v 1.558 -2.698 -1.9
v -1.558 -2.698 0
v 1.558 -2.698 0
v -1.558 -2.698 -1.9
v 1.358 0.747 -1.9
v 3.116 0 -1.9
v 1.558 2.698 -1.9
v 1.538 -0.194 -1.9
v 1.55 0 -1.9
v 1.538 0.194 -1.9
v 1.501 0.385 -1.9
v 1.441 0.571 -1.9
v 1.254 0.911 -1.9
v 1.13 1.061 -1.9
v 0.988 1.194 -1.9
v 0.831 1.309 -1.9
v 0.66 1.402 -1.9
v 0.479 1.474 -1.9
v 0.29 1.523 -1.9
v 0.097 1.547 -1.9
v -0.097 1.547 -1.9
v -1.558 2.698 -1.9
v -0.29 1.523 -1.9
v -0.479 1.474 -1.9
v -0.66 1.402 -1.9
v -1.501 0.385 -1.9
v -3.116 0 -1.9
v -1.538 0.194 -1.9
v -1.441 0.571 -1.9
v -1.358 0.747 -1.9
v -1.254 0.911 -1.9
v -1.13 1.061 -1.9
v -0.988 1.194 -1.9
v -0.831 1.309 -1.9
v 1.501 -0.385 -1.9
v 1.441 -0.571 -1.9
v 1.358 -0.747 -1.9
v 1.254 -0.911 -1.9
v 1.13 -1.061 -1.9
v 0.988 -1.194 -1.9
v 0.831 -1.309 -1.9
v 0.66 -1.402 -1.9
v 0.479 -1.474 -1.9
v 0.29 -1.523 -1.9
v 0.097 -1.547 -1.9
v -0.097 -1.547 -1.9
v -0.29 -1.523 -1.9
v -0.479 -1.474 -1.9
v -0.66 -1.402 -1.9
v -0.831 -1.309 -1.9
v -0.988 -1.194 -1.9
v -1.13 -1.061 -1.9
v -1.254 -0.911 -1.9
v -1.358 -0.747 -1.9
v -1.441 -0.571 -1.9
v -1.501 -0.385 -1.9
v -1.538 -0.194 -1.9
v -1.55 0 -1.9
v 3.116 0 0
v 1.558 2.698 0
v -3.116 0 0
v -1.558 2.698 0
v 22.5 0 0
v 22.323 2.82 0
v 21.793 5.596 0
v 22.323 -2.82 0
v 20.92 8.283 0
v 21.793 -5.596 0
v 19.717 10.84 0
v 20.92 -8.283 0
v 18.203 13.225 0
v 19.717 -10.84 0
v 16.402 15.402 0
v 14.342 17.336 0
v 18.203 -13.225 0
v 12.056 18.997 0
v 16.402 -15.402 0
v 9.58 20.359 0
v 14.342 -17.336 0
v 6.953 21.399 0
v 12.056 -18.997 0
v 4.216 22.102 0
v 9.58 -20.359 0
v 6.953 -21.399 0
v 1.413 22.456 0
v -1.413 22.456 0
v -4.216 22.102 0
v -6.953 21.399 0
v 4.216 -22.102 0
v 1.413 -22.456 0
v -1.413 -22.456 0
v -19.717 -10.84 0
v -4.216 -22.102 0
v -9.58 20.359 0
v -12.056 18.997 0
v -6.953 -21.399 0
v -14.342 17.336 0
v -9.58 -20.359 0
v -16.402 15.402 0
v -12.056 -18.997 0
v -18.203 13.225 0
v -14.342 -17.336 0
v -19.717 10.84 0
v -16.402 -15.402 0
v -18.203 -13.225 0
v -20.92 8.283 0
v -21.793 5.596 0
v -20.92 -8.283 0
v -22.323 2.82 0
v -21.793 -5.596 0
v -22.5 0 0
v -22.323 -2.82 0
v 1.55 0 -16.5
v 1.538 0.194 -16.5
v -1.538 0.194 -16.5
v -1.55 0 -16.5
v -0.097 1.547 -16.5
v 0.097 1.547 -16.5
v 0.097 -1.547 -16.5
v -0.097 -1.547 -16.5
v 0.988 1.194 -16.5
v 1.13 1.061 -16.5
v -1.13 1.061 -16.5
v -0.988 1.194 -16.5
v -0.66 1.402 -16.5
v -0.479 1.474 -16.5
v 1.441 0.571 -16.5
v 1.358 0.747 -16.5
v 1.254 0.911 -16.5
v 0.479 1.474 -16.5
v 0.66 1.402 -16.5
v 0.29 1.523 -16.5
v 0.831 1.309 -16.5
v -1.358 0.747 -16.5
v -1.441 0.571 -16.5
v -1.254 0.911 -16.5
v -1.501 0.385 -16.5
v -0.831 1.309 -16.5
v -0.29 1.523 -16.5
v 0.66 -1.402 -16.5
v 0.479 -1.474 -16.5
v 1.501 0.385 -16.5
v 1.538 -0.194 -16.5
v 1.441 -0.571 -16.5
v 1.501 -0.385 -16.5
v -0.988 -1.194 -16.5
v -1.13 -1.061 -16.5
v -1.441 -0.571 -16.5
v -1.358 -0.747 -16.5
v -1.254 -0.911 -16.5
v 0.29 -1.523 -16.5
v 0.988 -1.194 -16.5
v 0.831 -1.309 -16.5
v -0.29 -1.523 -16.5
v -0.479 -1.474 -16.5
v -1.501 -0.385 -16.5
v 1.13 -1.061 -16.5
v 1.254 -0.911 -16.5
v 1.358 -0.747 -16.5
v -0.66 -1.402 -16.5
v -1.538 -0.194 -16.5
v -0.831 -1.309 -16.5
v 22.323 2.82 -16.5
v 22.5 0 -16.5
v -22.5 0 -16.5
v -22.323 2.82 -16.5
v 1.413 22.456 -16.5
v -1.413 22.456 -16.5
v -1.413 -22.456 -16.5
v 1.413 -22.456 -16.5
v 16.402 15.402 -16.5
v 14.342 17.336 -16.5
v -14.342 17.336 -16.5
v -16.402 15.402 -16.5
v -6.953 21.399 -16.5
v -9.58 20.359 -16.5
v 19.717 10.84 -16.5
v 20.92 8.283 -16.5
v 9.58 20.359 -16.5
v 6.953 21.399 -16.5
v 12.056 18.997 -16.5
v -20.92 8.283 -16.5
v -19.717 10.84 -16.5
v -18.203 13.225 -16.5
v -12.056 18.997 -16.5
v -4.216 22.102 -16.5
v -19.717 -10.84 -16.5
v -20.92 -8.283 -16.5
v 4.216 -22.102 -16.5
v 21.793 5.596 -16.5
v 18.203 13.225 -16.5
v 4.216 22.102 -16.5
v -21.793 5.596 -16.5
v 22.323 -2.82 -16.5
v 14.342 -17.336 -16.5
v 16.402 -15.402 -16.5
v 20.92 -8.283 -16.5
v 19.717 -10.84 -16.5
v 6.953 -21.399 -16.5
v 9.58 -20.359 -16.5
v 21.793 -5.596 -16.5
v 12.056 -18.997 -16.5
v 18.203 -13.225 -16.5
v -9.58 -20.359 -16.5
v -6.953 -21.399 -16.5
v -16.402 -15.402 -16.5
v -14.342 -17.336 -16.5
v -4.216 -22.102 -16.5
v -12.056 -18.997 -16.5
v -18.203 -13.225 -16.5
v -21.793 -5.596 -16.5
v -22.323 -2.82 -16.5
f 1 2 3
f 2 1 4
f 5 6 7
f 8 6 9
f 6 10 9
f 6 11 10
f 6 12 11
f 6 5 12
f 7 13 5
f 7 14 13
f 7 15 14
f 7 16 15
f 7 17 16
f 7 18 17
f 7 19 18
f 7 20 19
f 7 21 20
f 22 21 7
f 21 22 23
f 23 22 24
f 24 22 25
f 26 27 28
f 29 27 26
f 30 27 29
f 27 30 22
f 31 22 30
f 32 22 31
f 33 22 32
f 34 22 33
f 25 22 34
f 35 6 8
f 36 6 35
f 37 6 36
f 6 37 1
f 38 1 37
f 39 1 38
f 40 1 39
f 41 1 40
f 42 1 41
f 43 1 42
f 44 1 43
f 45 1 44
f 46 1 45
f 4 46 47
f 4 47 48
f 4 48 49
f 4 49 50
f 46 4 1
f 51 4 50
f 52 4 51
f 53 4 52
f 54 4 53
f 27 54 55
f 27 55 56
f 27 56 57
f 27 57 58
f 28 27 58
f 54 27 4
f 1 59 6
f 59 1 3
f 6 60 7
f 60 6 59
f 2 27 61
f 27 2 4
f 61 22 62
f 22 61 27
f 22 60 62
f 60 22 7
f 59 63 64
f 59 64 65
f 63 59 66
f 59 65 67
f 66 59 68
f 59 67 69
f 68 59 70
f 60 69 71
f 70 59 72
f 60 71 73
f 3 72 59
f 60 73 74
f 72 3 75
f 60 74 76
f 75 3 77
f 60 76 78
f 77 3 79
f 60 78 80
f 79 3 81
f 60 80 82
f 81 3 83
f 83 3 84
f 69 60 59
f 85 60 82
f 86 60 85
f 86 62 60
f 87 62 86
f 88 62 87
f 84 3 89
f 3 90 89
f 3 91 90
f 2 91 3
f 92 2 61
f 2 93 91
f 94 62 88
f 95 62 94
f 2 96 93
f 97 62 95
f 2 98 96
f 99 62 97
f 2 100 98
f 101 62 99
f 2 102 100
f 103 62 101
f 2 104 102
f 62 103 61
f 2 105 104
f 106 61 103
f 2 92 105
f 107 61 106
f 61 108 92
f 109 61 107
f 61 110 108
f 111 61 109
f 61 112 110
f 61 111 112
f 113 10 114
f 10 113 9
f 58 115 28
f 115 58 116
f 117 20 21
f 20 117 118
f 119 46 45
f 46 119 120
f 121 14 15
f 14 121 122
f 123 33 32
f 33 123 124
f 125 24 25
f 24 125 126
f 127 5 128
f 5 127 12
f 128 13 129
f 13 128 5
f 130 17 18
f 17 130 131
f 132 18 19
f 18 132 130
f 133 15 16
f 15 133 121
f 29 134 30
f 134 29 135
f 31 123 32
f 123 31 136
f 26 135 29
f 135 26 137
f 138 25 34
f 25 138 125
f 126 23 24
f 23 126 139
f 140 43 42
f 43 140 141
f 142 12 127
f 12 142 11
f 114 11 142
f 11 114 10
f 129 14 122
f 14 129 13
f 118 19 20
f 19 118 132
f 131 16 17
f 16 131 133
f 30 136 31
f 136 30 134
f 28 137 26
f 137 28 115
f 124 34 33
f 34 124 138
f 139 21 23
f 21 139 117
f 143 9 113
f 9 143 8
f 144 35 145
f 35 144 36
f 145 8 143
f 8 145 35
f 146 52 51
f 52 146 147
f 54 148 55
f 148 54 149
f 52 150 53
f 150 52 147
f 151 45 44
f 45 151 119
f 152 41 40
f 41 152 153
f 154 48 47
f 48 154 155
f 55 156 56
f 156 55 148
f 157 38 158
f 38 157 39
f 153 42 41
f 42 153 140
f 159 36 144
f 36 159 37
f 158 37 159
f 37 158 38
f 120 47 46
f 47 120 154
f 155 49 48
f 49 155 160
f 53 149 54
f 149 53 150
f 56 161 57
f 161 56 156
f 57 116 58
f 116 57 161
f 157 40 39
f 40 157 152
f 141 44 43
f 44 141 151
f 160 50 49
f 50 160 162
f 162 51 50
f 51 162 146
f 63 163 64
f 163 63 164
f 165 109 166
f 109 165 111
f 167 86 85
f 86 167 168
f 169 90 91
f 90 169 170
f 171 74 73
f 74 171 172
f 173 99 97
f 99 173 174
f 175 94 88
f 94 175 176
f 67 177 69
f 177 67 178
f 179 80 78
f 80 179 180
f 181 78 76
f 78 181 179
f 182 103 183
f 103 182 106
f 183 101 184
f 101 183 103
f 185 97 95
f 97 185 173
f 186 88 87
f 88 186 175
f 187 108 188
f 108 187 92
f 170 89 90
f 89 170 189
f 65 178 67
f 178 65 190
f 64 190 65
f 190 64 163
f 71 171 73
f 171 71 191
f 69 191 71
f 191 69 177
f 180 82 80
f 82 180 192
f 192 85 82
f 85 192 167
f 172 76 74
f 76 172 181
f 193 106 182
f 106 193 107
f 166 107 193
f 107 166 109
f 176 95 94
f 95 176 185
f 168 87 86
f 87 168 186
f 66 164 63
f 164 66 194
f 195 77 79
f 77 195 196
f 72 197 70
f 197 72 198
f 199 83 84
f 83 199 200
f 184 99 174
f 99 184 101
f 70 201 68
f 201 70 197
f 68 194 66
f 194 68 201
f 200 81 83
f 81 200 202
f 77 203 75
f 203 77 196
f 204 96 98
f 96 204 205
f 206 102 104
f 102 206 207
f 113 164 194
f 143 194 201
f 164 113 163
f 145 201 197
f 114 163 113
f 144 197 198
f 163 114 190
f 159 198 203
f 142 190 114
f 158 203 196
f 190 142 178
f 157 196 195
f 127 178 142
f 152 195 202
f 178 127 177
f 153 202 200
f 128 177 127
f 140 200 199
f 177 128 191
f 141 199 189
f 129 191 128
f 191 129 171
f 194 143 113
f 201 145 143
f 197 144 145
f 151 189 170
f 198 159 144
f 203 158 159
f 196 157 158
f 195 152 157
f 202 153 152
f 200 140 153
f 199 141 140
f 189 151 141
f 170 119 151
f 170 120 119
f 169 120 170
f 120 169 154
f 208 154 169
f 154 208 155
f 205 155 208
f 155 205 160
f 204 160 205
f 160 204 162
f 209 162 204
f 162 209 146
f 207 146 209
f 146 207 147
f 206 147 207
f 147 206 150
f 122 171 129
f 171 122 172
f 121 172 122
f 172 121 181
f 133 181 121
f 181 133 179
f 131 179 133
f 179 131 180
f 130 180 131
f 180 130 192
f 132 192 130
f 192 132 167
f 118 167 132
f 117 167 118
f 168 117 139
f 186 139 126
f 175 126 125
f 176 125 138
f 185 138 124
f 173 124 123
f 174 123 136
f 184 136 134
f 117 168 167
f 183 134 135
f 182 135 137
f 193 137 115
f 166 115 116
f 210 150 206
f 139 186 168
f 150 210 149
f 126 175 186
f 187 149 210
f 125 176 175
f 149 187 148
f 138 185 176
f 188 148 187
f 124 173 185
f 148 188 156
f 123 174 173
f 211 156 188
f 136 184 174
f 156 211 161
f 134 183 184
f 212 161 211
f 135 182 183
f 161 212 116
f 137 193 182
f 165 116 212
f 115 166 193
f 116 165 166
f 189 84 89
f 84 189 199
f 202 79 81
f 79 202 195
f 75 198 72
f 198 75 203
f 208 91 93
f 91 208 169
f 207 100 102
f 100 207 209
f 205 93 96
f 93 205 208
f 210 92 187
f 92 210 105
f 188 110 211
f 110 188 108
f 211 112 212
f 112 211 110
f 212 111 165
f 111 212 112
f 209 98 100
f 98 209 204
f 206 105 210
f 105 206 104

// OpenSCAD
$fn = 50;

difference() {
	union() {
		translate(v = [0, 0, -16.5]) {
			cylinder(h = 16.5, r = 22.5);
		}
	}
	union() {
		translate(v = [0, 0, 0]) {
			rotate(a = [0, 0, 0]) {
				difference() {
					union() {
						translate(v = [0, 0, -1.9]) {
							linear_extrude(height = 1.9) {
								polygon(points = [[3.1158, 0.0], [1.5579000000000005, 2.698361953111554], [-1.5578999999999994, 2.6983619531115544], [-3.1158, 3.815754496783323e-16], [-1.5579000000000014, -2.6983619531115535], [1.557899999999998, -2.6983619531115552]]);
							}
						}
					}
					union();
				}
			}
		}
		#translate(v = [0, 0, -100.0]) {
			cylinder(h = 200, r = 1.55);
		}
	}
}
